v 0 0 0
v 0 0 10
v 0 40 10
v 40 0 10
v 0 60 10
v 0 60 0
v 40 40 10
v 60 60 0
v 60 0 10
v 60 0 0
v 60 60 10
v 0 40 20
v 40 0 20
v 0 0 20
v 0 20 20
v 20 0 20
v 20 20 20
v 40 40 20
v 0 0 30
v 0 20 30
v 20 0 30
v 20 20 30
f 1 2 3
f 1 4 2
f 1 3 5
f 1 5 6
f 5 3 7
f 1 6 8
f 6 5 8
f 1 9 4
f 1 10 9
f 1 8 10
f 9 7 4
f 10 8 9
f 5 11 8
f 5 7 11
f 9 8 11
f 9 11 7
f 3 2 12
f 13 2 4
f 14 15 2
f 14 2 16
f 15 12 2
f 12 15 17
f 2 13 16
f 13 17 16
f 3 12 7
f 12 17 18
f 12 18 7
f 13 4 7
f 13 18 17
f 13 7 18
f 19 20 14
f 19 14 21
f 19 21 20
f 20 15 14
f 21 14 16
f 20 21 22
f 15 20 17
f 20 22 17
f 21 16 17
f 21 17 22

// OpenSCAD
module pyramid() {
    translate([0, 0, 0])
        cube([60, 60, 10]);
    
    translate([0, 0, 10])
        cube([40, 40, 10]);
    
    translate([0, 0, 20])
        cube([20, 20, 10]);
}

pyramid();
